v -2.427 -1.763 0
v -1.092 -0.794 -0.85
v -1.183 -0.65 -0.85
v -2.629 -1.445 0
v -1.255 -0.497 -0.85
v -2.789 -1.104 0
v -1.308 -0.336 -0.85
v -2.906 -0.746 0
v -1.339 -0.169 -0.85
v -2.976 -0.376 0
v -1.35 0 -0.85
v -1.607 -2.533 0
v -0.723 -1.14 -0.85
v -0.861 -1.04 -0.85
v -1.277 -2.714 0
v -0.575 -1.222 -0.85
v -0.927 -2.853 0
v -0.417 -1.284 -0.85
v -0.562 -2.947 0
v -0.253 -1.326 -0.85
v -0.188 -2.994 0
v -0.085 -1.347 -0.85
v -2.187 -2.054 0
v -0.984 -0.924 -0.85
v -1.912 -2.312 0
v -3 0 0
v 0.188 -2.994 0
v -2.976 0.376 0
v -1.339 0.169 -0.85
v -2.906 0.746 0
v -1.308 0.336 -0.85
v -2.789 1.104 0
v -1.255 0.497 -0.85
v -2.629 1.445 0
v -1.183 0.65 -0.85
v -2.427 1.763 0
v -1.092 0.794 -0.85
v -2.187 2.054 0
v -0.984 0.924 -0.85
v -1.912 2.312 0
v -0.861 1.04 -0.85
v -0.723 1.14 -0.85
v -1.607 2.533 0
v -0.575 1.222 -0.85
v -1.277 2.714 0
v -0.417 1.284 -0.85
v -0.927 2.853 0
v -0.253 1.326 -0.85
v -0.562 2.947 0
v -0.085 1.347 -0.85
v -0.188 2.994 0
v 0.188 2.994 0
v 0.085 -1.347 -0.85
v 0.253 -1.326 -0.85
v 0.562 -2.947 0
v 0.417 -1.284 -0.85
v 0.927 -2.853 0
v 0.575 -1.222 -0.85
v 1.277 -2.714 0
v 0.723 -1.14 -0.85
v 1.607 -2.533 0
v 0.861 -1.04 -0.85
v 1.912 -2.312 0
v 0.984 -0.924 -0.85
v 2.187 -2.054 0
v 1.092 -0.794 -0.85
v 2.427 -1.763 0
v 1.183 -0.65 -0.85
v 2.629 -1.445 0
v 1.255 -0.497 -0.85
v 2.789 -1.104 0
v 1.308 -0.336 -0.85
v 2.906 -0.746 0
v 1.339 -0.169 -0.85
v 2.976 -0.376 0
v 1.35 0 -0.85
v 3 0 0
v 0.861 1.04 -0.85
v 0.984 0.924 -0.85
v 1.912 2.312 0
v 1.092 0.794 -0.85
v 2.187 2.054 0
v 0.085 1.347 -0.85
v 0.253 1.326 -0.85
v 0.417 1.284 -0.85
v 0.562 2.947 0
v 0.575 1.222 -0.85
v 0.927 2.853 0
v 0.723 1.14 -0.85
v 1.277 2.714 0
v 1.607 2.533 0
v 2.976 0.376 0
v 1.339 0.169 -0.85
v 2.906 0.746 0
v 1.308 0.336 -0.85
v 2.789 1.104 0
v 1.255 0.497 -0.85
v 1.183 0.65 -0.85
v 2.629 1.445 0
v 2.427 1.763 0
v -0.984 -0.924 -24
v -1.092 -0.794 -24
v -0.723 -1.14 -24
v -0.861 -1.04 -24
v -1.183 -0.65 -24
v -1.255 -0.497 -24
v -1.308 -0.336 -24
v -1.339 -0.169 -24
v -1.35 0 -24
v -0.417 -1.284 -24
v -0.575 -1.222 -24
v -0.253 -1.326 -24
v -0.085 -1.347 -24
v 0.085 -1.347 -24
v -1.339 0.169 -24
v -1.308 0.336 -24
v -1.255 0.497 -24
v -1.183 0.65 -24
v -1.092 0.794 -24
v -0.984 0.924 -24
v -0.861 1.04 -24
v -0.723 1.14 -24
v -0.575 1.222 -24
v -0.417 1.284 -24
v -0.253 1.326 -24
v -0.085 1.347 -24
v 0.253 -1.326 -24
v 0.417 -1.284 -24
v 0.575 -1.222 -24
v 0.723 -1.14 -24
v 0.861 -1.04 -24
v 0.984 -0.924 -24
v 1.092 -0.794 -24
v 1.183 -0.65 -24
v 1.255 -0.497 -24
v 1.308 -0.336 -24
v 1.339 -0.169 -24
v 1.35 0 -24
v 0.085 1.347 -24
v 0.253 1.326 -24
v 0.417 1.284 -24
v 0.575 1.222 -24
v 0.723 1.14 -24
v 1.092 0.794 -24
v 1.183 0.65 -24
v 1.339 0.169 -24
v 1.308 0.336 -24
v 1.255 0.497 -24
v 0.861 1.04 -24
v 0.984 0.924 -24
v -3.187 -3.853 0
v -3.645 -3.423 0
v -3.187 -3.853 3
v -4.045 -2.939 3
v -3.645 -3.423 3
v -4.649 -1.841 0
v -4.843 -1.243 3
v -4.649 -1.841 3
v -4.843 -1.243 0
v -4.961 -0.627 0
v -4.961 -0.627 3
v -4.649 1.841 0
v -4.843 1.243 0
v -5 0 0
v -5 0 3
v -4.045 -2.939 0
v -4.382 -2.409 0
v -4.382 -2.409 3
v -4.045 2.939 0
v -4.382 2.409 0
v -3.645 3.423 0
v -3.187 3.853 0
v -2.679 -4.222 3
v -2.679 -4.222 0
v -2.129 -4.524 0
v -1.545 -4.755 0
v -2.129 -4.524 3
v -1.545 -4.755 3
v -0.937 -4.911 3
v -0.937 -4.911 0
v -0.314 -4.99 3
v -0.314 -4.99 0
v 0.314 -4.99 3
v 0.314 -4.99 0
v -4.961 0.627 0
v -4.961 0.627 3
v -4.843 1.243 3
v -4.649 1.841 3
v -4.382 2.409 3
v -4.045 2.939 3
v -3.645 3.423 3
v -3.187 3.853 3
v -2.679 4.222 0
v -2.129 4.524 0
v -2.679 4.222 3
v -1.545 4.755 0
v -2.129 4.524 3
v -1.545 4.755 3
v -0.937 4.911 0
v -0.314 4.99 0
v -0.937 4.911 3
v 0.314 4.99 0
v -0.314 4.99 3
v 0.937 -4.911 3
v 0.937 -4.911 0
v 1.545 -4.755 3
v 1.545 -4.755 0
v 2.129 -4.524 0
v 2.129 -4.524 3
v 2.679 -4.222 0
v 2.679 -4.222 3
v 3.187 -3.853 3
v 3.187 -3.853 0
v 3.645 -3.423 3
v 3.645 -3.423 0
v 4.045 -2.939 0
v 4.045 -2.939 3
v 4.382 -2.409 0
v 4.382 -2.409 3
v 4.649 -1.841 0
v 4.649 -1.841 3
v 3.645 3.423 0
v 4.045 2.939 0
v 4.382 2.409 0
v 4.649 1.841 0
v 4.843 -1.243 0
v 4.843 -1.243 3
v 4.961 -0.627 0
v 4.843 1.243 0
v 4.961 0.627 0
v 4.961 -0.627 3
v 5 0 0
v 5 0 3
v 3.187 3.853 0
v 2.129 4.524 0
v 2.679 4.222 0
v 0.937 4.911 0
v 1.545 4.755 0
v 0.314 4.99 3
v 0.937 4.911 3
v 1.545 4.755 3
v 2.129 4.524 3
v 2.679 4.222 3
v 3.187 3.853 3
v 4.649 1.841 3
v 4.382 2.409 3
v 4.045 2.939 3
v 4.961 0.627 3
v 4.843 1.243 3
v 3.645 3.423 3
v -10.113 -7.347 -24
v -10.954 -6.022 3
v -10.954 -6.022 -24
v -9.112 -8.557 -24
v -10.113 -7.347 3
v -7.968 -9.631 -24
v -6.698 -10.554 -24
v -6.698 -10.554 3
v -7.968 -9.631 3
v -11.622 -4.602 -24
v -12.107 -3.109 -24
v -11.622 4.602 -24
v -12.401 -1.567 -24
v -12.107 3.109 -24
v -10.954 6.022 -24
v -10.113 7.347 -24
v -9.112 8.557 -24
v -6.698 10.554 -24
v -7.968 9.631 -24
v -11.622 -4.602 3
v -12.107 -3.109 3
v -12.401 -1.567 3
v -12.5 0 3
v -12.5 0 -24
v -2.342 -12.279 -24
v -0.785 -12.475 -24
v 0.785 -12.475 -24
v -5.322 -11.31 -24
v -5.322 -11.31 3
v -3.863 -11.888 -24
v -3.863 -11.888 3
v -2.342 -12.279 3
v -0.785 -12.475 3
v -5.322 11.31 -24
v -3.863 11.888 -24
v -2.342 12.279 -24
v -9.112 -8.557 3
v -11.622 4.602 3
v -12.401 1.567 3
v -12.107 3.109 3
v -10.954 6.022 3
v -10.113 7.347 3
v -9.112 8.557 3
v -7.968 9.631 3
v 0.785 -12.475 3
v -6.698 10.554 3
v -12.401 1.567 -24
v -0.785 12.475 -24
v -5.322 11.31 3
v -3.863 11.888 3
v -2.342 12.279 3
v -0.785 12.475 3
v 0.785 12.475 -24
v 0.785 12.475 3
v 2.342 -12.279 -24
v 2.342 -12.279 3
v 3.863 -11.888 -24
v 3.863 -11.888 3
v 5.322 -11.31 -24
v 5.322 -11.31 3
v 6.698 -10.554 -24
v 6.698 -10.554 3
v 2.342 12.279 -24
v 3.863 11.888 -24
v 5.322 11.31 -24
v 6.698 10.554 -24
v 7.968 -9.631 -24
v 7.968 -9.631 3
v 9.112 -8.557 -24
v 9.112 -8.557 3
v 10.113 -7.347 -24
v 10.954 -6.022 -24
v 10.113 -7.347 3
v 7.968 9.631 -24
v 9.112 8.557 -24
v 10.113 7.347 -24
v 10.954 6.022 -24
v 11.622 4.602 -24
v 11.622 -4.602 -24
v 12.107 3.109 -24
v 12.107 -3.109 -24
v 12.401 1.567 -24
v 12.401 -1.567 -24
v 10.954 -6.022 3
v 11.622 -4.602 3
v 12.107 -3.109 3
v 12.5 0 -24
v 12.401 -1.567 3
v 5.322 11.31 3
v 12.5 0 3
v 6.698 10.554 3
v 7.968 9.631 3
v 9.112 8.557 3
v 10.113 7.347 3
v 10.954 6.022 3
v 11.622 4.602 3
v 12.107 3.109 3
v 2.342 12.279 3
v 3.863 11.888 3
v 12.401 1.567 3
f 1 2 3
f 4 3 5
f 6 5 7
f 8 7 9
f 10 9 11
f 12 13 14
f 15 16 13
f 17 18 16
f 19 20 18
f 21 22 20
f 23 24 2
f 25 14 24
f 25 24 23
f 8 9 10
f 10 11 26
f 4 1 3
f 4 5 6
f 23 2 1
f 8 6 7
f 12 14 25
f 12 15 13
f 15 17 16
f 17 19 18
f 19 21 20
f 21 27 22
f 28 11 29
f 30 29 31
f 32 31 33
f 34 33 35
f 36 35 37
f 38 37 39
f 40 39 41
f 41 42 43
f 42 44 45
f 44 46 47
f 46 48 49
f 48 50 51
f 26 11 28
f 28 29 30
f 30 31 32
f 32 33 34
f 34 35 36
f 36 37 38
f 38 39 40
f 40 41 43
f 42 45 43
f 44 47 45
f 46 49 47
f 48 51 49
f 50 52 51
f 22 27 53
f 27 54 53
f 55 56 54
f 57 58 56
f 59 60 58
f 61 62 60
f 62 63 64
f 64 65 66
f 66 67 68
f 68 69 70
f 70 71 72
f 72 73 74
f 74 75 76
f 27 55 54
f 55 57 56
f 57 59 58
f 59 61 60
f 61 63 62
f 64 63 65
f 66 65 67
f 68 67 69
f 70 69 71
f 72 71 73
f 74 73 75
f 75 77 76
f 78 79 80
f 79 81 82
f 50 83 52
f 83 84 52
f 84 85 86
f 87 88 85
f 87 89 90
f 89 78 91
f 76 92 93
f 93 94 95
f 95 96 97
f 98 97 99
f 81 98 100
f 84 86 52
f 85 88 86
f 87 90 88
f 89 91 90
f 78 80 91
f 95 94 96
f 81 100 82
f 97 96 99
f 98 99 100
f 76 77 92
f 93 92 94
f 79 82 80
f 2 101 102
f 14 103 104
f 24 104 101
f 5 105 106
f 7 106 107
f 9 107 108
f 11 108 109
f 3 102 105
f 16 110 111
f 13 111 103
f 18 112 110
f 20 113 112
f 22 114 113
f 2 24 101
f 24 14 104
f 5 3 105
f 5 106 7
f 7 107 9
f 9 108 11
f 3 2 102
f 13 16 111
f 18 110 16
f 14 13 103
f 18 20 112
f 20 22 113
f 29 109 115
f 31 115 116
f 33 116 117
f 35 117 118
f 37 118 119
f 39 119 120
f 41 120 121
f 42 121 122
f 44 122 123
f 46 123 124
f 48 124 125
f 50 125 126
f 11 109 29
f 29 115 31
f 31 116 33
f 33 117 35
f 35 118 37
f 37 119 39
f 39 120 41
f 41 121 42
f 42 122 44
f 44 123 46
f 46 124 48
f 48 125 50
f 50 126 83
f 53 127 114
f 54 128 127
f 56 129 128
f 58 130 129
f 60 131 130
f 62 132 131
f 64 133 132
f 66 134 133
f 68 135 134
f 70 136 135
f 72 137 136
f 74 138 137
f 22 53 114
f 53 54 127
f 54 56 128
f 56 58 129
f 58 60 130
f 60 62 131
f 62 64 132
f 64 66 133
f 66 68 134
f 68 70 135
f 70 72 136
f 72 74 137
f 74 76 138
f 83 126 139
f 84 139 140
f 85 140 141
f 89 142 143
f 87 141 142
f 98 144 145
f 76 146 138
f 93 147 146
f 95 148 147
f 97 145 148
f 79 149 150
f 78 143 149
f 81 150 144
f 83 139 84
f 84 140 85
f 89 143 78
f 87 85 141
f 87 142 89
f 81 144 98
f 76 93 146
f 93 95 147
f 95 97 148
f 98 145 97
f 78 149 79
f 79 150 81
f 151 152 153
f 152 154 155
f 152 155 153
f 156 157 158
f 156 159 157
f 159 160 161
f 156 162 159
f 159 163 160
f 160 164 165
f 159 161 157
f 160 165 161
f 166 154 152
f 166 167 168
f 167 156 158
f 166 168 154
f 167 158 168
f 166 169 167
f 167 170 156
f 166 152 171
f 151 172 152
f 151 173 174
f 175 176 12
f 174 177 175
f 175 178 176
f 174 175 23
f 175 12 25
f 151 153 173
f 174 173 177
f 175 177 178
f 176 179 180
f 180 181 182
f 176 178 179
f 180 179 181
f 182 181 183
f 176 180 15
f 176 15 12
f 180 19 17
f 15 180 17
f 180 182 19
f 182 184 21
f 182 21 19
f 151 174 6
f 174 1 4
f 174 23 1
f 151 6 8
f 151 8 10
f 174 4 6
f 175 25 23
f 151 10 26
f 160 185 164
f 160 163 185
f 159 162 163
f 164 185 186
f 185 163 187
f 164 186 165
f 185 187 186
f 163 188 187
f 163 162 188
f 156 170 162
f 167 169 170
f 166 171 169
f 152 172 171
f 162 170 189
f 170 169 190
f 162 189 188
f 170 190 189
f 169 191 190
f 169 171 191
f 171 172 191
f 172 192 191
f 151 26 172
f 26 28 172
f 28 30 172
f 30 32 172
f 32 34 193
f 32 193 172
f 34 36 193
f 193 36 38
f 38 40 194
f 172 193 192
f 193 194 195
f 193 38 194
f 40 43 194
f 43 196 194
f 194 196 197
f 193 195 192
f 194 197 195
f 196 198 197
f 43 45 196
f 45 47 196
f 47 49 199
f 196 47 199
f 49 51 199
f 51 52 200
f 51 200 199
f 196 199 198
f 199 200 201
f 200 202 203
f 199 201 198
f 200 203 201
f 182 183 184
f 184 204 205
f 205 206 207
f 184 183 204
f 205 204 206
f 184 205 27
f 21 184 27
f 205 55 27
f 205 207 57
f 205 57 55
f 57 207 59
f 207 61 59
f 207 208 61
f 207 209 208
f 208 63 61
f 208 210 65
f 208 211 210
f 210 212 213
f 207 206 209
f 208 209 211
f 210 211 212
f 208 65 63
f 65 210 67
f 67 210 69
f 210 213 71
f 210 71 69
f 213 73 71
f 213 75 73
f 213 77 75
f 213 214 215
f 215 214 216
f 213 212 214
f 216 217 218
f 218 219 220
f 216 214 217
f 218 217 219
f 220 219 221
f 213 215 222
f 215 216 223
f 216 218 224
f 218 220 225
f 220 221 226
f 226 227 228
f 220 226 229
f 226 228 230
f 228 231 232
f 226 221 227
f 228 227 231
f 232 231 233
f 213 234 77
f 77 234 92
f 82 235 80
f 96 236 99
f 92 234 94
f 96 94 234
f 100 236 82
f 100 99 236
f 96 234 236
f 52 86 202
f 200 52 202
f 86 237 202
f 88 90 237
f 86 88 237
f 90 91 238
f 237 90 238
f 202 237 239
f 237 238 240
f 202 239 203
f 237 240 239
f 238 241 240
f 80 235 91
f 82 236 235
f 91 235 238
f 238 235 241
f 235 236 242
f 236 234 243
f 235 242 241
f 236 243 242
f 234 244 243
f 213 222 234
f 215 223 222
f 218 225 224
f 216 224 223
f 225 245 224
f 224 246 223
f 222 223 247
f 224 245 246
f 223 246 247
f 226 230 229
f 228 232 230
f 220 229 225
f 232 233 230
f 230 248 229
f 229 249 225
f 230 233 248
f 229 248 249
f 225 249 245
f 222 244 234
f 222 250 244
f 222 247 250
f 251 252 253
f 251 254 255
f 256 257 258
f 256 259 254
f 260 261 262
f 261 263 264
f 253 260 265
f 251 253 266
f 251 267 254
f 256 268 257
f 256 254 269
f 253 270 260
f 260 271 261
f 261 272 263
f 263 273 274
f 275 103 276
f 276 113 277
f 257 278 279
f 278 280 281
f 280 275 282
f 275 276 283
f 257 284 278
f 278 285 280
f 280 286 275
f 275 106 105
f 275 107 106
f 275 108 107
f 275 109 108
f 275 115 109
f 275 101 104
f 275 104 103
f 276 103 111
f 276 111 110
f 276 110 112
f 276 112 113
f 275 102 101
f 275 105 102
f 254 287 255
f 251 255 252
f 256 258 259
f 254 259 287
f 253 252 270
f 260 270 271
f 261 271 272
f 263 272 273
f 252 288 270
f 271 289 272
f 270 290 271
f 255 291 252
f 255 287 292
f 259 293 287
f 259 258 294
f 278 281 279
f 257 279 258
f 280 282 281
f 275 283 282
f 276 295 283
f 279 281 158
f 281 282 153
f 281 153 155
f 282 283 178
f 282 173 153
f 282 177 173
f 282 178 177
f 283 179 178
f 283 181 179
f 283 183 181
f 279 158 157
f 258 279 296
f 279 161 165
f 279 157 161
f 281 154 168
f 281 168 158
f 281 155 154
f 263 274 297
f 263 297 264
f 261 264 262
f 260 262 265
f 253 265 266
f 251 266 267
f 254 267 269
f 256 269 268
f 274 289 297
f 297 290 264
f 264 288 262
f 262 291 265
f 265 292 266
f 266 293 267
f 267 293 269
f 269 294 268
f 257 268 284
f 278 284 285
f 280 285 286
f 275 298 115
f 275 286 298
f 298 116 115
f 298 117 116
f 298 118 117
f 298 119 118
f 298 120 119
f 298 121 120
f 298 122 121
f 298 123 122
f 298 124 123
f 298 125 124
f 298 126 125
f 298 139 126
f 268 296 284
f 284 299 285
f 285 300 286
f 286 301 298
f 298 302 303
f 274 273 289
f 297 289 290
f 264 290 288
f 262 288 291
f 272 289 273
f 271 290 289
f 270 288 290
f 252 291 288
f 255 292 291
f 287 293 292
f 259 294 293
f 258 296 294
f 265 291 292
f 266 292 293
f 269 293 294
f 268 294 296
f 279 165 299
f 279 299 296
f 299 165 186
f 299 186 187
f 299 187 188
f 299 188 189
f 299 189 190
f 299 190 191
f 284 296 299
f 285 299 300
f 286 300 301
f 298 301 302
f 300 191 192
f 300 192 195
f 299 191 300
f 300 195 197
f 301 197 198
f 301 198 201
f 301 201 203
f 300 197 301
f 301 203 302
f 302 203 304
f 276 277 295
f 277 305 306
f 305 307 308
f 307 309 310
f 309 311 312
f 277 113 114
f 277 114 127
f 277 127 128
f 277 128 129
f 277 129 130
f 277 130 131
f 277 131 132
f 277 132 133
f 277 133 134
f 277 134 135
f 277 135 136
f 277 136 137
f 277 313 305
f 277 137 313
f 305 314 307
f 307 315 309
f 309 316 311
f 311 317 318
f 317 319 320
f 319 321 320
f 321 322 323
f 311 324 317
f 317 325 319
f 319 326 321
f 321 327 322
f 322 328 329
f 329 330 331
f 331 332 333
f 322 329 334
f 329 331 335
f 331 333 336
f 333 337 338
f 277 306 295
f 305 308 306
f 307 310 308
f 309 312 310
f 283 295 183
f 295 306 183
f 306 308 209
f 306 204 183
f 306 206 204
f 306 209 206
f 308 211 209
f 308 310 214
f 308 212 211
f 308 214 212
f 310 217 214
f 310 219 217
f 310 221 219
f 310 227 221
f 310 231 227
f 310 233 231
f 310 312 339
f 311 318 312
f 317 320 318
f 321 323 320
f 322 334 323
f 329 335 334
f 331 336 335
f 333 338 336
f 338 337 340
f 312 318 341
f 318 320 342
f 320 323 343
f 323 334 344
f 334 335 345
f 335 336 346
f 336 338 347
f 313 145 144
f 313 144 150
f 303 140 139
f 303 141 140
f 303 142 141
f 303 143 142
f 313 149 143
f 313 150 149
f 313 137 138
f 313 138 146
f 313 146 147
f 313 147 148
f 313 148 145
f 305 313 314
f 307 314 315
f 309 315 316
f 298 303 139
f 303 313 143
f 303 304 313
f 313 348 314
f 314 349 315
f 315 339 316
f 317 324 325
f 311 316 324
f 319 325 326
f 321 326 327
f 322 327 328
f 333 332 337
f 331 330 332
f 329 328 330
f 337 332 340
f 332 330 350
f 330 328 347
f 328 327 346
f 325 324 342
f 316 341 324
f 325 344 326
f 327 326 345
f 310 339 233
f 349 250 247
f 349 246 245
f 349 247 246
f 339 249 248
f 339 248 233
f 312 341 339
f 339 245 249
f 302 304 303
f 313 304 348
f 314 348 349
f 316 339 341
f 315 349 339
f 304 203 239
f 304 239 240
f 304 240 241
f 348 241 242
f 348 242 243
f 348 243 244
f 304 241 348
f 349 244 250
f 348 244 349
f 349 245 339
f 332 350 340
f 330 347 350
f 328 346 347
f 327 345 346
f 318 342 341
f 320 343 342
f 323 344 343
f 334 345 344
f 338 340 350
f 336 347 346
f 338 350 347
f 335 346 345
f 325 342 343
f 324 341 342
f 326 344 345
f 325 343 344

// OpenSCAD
$fn = 50;


difference() {
	union() {
		translate(v = [0, 0, -24.0000000000]) {
			cylinder(h = 27, r = 12.5000000000);
		}
	}
	union() {
		translate(v = [0, 0, 0]) {
			rotate(a = [0, 0, 0]) {
				difference() {
					union() {
						translate(v = [0, 0, -27.0000000000]) {
							cylinder(h = 27, r = 1.0000000000);
						}
						translate(v = [0, 0, -0.8500000000]) {
							cylinder(h = 0.8500000000, r1 = 1.3500000000, r2 = 3.0000000000);
						}
						translate(v = [0, 0, -27.0000000000]) {
							cylinder(h = 27, r = 1.3500000000);
						}
						translate(v = [0, 0, -27.0000000000]) {
							cylinder(h = 27, r = 1.0000000000);
						}
					}
					union();
				}
			}
		}
		#cylinder(h = 3, r = 5.0000000000);
	}
}
